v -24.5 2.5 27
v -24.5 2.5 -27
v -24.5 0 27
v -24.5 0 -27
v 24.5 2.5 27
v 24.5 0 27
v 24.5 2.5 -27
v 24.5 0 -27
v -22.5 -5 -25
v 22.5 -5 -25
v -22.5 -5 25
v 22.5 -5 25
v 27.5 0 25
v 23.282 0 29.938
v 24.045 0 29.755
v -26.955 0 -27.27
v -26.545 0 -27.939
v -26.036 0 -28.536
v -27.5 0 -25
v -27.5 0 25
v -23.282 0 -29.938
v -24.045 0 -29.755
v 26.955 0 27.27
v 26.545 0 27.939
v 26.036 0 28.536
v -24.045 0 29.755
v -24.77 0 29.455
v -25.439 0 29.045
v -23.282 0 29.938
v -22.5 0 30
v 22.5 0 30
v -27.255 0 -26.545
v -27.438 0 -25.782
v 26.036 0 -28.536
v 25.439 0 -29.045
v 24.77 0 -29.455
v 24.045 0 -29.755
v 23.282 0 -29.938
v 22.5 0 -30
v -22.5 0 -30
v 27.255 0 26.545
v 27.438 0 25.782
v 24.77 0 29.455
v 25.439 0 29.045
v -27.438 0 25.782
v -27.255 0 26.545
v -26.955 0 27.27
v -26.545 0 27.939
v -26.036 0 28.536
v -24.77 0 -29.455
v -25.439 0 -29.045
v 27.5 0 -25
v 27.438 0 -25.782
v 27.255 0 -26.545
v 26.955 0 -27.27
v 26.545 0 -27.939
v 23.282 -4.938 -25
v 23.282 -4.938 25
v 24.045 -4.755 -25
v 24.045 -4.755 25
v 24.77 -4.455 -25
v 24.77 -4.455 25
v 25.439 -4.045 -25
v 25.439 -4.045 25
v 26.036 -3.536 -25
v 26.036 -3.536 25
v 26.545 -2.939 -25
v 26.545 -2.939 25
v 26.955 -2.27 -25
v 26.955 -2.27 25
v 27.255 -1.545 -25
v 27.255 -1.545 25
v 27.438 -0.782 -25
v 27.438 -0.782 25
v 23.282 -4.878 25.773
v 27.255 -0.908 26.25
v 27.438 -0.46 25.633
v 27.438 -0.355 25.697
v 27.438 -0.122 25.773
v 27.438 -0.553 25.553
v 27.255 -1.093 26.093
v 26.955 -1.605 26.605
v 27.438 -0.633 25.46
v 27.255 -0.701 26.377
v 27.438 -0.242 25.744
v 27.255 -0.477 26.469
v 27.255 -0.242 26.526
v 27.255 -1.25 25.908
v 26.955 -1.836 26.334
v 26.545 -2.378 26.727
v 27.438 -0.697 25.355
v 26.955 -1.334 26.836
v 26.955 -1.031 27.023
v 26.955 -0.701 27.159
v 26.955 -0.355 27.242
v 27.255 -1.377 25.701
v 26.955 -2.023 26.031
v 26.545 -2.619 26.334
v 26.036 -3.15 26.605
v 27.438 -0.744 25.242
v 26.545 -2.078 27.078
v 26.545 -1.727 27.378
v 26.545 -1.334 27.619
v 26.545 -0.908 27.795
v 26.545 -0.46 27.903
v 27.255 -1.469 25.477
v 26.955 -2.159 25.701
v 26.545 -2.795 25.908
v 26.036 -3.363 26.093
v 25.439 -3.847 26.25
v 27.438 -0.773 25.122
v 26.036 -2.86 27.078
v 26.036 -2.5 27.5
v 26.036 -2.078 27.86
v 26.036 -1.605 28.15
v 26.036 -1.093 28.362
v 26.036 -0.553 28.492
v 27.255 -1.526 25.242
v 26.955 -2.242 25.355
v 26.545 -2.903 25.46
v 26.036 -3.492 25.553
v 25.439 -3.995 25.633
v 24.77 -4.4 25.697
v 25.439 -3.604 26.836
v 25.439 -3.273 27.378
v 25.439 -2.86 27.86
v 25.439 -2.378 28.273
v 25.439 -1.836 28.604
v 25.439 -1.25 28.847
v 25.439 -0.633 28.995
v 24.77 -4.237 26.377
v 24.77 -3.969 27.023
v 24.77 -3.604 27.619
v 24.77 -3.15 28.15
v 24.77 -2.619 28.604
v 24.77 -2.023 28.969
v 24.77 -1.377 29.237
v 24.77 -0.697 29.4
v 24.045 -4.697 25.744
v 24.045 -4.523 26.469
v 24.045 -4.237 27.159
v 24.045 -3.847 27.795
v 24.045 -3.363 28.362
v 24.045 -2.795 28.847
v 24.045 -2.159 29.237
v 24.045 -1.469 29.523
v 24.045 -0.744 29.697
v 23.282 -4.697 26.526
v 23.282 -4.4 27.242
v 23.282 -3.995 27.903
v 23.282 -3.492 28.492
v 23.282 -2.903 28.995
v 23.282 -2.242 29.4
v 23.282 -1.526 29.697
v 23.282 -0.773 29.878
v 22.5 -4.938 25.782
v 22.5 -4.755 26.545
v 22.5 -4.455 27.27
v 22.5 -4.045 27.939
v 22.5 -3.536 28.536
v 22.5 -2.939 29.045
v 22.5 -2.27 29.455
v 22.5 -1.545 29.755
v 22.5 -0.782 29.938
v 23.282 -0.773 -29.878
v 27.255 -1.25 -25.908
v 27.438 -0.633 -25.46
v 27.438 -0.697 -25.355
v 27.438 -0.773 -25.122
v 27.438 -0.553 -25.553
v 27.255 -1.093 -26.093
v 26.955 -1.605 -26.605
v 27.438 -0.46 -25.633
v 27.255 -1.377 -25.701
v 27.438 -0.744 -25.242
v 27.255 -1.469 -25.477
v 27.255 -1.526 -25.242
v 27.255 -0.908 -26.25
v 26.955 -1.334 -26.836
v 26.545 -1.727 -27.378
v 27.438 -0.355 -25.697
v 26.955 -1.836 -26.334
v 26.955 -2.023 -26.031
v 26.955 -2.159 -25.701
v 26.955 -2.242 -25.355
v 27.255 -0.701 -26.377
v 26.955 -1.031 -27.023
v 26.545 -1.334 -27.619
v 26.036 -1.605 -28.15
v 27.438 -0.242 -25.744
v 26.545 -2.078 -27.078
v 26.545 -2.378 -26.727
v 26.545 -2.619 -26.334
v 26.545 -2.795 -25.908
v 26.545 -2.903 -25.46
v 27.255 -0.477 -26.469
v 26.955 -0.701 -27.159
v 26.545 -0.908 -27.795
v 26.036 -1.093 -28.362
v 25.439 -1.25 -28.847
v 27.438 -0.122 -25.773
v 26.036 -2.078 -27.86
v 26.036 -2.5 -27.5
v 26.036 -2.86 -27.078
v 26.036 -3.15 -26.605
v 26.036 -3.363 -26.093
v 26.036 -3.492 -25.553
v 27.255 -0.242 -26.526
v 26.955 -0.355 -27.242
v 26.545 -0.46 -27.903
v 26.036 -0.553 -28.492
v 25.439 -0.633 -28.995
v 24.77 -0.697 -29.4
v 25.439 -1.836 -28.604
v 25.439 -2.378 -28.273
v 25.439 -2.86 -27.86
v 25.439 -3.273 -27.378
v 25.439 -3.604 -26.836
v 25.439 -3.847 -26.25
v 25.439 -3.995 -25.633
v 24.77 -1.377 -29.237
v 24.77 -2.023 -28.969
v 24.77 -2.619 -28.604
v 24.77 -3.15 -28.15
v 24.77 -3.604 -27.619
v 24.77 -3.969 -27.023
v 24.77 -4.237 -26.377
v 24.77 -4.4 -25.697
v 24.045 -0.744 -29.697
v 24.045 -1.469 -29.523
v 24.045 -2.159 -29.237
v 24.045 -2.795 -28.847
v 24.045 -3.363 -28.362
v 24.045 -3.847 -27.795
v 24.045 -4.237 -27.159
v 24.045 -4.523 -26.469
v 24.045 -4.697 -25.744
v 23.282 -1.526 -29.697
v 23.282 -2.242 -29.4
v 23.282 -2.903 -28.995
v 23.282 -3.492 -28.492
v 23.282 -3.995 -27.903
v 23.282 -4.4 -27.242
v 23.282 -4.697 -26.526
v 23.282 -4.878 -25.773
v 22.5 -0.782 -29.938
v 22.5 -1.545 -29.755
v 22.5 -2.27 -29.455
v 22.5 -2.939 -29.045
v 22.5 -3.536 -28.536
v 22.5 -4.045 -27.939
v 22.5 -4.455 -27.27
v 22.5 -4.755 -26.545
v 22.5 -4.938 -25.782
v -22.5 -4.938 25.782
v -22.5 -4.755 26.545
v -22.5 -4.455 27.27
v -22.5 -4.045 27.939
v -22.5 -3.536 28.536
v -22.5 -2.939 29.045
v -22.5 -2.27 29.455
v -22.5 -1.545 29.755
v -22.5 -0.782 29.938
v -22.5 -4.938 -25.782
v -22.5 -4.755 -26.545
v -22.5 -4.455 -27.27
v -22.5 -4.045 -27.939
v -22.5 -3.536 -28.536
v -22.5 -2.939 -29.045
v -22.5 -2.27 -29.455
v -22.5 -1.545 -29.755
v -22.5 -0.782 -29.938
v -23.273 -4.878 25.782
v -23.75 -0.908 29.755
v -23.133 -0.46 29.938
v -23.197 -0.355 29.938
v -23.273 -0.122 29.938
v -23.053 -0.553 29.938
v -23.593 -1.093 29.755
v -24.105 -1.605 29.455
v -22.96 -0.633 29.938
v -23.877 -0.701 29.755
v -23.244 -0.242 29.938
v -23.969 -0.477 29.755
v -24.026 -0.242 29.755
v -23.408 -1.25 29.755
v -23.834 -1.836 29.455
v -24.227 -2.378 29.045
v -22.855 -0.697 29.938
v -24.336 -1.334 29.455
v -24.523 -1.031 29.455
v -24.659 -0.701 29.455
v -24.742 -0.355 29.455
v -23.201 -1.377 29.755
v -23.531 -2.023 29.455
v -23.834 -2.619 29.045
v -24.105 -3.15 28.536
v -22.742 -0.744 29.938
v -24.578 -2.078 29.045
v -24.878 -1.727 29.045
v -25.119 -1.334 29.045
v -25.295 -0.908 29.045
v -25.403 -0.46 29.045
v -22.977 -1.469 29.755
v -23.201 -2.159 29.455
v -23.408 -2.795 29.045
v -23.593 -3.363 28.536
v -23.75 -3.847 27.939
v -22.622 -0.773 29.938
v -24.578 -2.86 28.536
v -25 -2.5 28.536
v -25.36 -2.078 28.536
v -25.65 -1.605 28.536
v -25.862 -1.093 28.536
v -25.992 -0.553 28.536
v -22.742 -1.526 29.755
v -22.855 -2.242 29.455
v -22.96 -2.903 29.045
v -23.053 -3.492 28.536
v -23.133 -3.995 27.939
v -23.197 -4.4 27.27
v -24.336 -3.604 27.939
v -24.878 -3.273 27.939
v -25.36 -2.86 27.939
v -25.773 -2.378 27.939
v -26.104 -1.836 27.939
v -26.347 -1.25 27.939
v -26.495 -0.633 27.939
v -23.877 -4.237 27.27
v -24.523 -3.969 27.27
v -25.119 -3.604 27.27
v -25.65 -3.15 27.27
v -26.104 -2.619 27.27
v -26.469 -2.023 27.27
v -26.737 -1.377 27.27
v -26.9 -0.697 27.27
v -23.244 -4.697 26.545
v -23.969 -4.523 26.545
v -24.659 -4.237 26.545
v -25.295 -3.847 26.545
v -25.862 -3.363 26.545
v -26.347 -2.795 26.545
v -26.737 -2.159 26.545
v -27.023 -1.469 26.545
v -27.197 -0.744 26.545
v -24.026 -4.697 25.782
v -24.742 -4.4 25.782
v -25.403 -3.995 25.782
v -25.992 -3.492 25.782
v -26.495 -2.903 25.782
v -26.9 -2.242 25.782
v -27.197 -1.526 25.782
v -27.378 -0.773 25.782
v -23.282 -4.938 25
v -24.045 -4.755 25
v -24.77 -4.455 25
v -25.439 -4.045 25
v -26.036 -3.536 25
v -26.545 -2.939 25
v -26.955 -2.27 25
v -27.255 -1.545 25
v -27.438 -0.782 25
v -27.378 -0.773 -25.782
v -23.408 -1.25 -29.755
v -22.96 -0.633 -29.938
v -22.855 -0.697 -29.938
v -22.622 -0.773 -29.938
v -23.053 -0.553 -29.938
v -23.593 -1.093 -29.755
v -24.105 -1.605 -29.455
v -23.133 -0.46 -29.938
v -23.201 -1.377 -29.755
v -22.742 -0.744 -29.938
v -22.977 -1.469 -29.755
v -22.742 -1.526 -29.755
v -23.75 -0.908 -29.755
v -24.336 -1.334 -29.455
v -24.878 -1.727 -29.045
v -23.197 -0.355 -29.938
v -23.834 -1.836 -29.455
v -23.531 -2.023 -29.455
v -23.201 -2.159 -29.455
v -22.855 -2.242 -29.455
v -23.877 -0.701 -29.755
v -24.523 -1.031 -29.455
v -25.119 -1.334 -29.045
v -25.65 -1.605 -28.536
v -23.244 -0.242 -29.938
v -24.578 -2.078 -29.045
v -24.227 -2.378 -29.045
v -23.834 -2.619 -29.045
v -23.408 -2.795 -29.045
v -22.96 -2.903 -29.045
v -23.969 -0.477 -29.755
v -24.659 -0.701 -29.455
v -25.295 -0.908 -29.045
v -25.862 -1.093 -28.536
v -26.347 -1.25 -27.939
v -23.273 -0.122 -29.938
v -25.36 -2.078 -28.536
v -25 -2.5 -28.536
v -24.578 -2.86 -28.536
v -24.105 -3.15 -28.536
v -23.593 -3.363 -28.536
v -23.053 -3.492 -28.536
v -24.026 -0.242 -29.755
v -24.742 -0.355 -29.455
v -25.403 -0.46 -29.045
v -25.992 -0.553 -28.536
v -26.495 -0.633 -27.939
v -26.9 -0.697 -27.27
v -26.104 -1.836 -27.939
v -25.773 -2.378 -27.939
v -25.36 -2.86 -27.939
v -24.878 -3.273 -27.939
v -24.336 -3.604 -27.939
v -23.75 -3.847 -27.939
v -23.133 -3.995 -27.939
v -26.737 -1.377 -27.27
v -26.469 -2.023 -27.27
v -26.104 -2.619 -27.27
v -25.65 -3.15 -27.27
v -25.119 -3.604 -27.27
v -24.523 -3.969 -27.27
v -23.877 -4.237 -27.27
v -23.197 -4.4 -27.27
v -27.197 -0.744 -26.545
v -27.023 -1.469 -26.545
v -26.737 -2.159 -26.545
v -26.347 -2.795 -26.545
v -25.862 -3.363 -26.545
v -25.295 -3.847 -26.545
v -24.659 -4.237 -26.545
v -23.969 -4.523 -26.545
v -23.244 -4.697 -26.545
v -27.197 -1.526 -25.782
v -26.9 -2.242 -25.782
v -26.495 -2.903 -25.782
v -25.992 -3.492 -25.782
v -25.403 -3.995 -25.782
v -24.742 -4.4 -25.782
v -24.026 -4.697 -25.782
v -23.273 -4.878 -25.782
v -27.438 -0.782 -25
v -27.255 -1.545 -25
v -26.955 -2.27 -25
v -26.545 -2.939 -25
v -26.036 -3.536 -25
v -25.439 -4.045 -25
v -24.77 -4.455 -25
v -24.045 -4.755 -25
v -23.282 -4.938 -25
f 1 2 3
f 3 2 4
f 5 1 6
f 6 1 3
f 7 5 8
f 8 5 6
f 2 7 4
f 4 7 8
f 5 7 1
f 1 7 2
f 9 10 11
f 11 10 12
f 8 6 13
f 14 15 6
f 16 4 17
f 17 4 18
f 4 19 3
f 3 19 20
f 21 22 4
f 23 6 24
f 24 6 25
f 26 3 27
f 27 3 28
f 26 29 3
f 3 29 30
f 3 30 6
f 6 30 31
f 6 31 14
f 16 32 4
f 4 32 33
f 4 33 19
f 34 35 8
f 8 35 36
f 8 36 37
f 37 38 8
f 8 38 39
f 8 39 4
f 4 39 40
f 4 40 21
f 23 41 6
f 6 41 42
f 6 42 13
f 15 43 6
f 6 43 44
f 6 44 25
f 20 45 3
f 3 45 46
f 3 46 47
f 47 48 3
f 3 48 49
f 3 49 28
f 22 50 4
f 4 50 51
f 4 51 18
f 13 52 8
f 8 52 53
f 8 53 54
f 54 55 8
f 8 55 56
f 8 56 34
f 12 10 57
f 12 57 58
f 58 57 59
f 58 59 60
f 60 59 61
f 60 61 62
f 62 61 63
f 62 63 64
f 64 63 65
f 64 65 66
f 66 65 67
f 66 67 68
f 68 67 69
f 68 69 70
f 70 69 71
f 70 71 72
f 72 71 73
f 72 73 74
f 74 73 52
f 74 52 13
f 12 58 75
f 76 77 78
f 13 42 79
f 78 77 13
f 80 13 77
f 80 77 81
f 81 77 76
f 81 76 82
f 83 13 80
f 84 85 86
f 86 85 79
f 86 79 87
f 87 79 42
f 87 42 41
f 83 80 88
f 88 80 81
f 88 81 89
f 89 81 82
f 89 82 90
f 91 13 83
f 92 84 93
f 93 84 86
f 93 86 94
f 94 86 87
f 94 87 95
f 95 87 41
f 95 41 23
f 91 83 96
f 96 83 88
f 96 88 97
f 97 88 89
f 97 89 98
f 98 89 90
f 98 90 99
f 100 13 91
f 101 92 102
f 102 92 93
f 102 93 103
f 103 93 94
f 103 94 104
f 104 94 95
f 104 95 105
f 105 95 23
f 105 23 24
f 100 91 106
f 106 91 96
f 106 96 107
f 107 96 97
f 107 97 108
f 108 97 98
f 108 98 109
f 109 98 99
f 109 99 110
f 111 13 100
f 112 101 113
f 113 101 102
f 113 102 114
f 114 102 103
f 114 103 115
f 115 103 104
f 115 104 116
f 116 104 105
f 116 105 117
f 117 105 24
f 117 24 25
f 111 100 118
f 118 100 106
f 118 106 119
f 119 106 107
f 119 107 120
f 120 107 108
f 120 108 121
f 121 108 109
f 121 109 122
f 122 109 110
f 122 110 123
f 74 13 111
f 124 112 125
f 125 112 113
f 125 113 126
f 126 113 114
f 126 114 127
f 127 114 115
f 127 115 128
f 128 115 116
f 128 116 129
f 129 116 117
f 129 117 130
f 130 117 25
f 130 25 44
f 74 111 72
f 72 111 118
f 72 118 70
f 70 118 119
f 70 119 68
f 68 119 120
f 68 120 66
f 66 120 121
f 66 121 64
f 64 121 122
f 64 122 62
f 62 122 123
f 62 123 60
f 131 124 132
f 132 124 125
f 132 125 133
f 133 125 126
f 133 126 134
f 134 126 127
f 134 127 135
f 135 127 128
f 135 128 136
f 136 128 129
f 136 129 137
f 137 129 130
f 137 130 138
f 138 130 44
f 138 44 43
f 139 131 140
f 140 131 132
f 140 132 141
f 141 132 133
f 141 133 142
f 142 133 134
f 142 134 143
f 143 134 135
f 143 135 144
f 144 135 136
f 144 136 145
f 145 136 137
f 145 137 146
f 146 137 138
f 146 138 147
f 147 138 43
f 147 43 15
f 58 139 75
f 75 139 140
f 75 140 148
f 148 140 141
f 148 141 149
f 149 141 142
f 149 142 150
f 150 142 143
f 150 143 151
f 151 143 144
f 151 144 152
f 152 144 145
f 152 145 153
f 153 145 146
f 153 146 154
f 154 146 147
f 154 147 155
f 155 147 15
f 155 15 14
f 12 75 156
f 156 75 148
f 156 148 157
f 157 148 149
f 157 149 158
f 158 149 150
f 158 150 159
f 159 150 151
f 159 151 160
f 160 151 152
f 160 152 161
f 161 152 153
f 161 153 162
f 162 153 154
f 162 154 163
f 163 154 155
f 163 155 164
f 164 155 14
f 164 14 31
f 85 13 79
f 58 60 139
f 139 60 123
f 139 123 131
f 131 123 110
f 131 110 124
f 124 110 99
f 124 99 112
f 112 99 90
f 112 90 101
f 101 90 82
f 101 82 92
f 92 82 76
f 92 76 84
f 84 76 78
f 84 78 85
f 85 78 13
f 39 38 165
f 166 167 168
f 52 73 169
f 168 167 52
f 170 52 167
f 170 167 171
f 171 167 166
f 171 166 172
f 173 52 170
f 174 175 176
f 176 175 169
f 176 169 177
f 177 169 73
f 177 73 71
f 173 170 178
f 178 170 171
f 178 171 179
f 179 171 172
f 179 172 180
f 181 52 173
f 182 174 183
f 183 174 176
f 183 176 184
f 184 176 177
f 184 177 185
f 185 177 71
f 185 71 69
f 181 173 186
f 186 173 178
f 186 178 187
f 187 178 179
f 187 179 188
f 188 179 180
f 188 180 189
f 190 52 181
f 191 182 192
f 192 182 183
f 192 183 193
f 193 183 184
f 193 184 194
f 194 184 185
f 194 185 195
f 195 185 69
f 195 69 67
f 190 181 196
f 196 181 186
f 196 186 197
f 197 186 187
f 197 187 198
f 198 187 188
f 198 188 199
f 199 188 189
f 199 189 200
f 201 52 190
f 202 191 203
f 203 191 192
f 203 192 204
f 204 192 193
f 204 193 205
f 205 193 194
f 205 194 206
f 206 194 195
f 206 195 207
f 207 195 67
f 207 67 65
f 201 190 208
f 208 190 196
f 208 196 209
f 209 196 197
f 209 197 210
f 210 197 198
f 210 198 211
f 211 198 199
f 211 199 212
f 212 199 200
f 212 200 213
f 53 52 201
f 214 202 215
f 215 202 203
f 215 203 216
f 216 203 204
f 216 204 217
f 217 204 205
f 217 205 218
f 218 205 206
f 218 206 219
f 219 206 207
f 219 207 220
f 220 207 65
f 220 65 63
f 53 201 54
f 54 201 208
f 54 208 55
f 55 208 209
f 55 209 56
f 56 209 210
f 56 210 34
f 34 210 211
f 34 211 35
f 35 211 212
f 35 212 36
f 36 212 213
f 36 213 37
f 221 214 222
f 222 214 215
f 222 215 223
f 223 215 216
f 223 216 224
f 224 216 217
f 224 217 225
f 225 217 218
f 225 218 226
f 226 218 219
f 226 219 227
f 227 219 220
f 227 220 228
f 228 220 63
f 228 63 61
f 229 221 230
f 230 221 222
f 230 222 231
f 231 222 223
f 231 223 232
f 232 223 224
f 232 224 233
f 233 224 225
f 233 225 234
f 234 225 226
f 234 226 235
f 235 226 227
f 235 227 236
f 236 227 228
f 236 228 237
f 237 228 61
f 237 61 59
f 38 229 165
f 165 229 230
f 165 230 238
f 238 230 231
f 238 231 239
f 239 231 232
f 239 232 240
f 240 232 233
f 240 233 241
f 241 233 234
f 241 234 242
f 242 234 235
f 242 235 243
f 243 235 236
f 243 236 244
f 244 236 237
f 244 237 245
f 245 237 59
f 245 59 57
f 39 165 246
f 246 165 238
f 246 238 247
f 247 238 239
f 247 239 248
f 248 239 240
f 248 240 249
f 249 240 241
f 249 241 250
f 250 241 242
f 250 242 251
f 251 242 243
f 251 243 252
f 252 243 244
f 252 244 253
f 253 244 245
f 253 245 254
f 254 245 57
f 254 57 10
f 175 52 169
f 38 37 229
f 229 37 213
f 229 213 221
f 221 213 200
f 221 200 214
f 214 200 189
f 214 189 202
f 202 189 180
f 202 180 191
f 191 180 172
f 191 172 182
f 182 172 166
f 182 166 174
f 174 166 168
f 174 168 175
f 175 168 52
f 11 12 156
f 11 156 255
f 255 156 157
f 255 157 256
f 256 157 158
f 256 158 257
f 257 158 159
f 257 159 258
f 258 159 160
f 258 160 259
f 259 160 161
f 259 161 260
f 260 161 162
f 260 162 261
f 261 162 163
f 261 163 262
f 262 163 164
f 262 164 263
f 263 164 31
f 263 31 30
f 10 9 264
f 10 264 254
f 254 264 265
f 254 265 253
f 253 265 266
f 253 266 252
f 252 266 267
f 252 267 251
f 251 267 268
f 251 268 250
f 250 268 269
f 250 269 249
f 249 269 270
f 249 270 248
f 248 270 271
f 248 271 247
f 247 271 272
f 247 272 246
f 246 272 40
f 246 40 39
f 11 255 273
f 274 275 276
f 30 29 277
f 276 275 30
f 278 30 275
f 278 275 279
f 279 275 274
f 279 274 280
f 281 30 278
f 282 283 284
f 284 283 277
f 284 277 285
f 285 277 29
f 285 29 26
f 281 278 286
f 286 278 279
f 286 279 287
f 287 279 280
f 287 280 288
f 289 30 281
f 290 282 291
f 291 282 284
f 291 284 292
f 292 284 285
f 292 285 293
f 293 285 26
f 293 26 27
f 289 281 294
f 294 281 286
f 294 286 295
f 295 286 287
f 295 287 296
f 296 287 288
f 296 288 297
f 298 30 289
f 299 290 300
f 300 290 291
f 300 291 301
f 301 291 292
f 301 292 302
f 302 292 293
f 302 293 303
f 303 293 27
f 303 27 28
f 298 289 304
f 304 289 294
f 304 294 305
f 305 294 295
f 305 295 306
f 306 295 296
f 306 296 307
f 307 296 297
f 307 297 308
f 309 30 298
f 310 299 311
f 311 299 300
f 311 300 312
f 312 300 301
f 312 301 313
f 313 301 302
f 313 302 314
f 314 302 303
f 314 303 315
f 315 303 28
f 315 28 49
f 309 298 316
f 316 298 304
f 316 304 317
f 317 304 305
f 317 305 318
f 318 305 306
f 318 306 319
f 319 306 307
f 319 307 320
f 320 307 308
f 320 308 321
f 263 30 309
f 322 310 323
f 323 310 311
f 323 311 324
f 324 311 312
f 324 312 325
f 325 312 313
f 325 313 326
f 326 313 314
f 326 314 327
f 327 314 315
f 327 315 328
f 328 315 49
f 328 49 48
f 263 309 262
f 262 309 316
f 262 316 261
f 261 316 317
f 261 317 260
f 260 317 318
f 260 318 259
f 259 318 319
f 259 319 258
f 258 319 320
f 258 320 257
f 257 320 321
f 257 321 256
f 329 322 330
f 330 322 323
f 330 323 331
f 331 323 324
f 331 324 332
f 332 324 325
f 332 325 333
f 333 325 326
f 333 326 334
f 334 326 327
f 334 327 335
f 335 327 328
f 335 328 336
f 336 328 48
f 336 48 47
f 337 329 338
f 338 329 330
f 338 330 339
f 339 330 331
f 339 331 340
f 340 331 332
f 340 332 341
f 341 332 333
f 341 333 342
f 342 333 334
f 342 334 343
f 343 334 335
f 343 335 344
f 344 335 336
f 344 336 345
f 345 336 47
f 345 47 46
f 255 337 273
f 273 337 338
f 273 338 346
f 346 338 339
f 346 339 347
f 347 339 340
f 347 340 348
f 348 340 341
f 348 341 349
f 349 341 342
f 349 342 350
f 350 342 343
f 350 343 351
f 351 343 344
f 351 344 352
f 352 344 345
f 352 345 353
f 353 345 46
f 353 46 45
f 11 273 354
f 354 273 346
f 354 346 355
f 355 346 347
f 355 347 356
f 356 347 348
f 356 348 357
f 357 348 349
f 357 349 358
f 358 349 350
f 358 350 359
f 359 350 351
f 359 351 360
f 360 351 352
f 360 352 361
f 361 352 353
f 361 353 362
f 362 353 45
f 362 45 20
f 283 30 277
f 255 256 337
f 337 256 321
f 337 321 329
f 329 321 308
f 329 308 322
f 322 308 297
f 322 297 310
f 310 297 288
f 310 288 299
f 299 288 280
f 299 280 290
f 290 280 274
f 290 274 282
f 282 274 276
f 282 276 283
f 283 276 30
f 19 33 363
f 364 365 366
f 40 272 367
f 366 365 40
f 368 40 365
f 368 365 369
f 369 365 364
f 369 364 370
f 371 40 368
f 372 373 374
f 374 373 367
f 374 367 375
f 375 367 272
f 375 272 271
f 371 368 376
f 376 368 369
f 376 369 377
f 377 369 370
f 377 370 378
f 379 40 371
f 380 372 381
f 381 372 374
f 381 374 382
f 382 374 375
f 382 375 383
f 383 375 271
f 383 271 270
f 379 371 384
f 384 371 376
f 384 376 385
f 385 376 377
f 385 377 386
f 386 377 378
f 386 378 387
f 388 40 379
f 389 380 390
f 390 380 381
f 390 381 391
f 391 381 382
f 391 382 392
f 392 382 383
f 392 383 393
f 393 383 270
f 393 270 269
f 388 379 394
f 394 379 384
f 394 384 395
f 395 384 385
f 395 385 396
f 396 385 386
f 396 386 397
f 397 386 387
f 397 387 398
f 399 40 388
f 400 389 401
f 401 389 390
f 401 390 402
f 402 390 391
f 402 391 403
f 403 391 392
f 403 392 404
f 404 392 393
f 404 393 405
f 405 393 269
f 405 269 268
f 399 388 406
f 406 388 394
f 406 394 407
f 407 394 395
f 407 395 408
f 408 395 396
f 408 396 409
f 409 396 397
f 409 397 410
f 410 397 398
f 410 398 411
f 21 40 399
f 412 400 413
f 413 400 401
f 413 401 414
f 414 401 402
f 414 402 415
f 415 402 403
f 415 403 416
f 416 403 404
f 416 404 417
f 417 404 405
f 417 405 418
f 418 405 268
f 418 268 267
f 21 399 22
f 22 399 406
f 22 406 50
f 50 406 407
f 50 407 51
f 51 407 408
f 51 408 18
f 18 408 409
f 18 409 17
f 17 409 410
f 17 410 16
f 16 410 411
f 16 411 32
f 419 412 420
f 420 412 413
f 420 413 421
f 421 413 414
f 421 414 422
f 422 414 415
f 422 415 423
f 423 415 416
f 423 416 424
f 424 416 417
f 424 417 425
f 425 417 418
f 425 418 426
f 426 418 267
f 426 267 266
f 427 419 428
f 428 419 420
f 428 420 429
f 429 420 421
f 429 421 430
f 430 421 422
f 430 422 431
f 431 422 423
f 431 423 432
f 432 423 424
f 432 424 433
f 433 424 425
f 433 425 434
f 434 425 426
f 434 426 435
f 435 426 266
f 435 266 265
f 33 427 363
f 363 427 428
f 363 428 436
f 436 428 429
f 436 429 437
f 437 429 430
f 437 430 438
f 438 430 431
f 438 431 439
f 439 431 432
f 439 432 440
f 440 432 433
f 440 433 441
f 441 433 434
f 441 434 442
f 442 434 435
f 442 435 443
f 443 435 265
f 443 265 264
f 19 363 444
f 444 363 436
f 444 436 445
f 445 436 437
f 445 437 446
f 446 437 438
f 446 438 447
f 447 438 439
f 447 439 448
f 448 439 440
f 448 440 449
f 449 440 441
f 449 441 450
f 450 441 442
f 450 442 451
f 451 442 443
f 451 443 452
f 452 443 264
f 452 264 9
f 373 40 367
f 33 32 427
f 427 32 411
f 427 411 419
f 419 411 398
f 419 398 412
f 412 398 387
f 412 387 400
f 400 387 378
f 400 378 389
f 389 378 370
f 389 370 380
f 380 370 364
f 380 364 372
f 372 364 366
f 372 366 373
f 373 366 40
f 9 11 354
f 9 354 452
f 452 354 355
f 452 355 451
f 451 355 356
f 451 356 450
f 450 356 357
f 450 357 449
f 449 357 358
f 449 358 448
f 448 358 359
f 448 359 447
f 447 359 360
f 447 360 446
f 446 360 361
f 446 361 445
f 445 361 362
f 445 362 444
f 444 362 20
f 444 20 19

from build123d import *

# Parameters (mm, degrees)
SKETCH1_W           = 49
SKETCH1_H           = 54
BOSS_EXTRUDE1_DEPTH = 2.5
SKETCH2_W           = 55
SKETCH2_H           = 60
BOSS_EXTRUDE2_DEPTH = 5
FILLET1_R           = 5


with BuildPart() as part:
    # Sketch1 → Boss-Extrude1 (new body)
    with BuildSketch(Plane(origin=(0, 0, 0), x_dir=(1, 0, 0), z_dir=(0, 1, 0))):
        Rectangle(SKETCH1_W, SKETCH1_H)
    extrude(amount=BOSS_EXTRUDE1_DEPTH)

    # Sketch2 → Boss-Extrude2 (add)
    with BuildSketch(Plane.XZ):
        Rectangle(SKETCH2_W, SKETCH2_H)
    extrude(amount=BOSS_EXTRUDE2_DEPTH)

    # Fillet1
    fillet1_edges = [part.edges().sort_by_distance(p)[0] for p in [
        (-27.5, -2.5, 30),
        (-27.5, -2.5, -30),
        (27.5, -2.5, -30),
        (27.5, -2.5, 30),
        (-27.5, -5, 0),
        (0, -5, -30),
        (27.5, -5, 0),
        (0, -5, 30),
    ]]
    fillet(fillet1_edges, radius=FILLET1_R - 0.0001)  # a hair under: the kernel refuses the full size


solid = part.part
